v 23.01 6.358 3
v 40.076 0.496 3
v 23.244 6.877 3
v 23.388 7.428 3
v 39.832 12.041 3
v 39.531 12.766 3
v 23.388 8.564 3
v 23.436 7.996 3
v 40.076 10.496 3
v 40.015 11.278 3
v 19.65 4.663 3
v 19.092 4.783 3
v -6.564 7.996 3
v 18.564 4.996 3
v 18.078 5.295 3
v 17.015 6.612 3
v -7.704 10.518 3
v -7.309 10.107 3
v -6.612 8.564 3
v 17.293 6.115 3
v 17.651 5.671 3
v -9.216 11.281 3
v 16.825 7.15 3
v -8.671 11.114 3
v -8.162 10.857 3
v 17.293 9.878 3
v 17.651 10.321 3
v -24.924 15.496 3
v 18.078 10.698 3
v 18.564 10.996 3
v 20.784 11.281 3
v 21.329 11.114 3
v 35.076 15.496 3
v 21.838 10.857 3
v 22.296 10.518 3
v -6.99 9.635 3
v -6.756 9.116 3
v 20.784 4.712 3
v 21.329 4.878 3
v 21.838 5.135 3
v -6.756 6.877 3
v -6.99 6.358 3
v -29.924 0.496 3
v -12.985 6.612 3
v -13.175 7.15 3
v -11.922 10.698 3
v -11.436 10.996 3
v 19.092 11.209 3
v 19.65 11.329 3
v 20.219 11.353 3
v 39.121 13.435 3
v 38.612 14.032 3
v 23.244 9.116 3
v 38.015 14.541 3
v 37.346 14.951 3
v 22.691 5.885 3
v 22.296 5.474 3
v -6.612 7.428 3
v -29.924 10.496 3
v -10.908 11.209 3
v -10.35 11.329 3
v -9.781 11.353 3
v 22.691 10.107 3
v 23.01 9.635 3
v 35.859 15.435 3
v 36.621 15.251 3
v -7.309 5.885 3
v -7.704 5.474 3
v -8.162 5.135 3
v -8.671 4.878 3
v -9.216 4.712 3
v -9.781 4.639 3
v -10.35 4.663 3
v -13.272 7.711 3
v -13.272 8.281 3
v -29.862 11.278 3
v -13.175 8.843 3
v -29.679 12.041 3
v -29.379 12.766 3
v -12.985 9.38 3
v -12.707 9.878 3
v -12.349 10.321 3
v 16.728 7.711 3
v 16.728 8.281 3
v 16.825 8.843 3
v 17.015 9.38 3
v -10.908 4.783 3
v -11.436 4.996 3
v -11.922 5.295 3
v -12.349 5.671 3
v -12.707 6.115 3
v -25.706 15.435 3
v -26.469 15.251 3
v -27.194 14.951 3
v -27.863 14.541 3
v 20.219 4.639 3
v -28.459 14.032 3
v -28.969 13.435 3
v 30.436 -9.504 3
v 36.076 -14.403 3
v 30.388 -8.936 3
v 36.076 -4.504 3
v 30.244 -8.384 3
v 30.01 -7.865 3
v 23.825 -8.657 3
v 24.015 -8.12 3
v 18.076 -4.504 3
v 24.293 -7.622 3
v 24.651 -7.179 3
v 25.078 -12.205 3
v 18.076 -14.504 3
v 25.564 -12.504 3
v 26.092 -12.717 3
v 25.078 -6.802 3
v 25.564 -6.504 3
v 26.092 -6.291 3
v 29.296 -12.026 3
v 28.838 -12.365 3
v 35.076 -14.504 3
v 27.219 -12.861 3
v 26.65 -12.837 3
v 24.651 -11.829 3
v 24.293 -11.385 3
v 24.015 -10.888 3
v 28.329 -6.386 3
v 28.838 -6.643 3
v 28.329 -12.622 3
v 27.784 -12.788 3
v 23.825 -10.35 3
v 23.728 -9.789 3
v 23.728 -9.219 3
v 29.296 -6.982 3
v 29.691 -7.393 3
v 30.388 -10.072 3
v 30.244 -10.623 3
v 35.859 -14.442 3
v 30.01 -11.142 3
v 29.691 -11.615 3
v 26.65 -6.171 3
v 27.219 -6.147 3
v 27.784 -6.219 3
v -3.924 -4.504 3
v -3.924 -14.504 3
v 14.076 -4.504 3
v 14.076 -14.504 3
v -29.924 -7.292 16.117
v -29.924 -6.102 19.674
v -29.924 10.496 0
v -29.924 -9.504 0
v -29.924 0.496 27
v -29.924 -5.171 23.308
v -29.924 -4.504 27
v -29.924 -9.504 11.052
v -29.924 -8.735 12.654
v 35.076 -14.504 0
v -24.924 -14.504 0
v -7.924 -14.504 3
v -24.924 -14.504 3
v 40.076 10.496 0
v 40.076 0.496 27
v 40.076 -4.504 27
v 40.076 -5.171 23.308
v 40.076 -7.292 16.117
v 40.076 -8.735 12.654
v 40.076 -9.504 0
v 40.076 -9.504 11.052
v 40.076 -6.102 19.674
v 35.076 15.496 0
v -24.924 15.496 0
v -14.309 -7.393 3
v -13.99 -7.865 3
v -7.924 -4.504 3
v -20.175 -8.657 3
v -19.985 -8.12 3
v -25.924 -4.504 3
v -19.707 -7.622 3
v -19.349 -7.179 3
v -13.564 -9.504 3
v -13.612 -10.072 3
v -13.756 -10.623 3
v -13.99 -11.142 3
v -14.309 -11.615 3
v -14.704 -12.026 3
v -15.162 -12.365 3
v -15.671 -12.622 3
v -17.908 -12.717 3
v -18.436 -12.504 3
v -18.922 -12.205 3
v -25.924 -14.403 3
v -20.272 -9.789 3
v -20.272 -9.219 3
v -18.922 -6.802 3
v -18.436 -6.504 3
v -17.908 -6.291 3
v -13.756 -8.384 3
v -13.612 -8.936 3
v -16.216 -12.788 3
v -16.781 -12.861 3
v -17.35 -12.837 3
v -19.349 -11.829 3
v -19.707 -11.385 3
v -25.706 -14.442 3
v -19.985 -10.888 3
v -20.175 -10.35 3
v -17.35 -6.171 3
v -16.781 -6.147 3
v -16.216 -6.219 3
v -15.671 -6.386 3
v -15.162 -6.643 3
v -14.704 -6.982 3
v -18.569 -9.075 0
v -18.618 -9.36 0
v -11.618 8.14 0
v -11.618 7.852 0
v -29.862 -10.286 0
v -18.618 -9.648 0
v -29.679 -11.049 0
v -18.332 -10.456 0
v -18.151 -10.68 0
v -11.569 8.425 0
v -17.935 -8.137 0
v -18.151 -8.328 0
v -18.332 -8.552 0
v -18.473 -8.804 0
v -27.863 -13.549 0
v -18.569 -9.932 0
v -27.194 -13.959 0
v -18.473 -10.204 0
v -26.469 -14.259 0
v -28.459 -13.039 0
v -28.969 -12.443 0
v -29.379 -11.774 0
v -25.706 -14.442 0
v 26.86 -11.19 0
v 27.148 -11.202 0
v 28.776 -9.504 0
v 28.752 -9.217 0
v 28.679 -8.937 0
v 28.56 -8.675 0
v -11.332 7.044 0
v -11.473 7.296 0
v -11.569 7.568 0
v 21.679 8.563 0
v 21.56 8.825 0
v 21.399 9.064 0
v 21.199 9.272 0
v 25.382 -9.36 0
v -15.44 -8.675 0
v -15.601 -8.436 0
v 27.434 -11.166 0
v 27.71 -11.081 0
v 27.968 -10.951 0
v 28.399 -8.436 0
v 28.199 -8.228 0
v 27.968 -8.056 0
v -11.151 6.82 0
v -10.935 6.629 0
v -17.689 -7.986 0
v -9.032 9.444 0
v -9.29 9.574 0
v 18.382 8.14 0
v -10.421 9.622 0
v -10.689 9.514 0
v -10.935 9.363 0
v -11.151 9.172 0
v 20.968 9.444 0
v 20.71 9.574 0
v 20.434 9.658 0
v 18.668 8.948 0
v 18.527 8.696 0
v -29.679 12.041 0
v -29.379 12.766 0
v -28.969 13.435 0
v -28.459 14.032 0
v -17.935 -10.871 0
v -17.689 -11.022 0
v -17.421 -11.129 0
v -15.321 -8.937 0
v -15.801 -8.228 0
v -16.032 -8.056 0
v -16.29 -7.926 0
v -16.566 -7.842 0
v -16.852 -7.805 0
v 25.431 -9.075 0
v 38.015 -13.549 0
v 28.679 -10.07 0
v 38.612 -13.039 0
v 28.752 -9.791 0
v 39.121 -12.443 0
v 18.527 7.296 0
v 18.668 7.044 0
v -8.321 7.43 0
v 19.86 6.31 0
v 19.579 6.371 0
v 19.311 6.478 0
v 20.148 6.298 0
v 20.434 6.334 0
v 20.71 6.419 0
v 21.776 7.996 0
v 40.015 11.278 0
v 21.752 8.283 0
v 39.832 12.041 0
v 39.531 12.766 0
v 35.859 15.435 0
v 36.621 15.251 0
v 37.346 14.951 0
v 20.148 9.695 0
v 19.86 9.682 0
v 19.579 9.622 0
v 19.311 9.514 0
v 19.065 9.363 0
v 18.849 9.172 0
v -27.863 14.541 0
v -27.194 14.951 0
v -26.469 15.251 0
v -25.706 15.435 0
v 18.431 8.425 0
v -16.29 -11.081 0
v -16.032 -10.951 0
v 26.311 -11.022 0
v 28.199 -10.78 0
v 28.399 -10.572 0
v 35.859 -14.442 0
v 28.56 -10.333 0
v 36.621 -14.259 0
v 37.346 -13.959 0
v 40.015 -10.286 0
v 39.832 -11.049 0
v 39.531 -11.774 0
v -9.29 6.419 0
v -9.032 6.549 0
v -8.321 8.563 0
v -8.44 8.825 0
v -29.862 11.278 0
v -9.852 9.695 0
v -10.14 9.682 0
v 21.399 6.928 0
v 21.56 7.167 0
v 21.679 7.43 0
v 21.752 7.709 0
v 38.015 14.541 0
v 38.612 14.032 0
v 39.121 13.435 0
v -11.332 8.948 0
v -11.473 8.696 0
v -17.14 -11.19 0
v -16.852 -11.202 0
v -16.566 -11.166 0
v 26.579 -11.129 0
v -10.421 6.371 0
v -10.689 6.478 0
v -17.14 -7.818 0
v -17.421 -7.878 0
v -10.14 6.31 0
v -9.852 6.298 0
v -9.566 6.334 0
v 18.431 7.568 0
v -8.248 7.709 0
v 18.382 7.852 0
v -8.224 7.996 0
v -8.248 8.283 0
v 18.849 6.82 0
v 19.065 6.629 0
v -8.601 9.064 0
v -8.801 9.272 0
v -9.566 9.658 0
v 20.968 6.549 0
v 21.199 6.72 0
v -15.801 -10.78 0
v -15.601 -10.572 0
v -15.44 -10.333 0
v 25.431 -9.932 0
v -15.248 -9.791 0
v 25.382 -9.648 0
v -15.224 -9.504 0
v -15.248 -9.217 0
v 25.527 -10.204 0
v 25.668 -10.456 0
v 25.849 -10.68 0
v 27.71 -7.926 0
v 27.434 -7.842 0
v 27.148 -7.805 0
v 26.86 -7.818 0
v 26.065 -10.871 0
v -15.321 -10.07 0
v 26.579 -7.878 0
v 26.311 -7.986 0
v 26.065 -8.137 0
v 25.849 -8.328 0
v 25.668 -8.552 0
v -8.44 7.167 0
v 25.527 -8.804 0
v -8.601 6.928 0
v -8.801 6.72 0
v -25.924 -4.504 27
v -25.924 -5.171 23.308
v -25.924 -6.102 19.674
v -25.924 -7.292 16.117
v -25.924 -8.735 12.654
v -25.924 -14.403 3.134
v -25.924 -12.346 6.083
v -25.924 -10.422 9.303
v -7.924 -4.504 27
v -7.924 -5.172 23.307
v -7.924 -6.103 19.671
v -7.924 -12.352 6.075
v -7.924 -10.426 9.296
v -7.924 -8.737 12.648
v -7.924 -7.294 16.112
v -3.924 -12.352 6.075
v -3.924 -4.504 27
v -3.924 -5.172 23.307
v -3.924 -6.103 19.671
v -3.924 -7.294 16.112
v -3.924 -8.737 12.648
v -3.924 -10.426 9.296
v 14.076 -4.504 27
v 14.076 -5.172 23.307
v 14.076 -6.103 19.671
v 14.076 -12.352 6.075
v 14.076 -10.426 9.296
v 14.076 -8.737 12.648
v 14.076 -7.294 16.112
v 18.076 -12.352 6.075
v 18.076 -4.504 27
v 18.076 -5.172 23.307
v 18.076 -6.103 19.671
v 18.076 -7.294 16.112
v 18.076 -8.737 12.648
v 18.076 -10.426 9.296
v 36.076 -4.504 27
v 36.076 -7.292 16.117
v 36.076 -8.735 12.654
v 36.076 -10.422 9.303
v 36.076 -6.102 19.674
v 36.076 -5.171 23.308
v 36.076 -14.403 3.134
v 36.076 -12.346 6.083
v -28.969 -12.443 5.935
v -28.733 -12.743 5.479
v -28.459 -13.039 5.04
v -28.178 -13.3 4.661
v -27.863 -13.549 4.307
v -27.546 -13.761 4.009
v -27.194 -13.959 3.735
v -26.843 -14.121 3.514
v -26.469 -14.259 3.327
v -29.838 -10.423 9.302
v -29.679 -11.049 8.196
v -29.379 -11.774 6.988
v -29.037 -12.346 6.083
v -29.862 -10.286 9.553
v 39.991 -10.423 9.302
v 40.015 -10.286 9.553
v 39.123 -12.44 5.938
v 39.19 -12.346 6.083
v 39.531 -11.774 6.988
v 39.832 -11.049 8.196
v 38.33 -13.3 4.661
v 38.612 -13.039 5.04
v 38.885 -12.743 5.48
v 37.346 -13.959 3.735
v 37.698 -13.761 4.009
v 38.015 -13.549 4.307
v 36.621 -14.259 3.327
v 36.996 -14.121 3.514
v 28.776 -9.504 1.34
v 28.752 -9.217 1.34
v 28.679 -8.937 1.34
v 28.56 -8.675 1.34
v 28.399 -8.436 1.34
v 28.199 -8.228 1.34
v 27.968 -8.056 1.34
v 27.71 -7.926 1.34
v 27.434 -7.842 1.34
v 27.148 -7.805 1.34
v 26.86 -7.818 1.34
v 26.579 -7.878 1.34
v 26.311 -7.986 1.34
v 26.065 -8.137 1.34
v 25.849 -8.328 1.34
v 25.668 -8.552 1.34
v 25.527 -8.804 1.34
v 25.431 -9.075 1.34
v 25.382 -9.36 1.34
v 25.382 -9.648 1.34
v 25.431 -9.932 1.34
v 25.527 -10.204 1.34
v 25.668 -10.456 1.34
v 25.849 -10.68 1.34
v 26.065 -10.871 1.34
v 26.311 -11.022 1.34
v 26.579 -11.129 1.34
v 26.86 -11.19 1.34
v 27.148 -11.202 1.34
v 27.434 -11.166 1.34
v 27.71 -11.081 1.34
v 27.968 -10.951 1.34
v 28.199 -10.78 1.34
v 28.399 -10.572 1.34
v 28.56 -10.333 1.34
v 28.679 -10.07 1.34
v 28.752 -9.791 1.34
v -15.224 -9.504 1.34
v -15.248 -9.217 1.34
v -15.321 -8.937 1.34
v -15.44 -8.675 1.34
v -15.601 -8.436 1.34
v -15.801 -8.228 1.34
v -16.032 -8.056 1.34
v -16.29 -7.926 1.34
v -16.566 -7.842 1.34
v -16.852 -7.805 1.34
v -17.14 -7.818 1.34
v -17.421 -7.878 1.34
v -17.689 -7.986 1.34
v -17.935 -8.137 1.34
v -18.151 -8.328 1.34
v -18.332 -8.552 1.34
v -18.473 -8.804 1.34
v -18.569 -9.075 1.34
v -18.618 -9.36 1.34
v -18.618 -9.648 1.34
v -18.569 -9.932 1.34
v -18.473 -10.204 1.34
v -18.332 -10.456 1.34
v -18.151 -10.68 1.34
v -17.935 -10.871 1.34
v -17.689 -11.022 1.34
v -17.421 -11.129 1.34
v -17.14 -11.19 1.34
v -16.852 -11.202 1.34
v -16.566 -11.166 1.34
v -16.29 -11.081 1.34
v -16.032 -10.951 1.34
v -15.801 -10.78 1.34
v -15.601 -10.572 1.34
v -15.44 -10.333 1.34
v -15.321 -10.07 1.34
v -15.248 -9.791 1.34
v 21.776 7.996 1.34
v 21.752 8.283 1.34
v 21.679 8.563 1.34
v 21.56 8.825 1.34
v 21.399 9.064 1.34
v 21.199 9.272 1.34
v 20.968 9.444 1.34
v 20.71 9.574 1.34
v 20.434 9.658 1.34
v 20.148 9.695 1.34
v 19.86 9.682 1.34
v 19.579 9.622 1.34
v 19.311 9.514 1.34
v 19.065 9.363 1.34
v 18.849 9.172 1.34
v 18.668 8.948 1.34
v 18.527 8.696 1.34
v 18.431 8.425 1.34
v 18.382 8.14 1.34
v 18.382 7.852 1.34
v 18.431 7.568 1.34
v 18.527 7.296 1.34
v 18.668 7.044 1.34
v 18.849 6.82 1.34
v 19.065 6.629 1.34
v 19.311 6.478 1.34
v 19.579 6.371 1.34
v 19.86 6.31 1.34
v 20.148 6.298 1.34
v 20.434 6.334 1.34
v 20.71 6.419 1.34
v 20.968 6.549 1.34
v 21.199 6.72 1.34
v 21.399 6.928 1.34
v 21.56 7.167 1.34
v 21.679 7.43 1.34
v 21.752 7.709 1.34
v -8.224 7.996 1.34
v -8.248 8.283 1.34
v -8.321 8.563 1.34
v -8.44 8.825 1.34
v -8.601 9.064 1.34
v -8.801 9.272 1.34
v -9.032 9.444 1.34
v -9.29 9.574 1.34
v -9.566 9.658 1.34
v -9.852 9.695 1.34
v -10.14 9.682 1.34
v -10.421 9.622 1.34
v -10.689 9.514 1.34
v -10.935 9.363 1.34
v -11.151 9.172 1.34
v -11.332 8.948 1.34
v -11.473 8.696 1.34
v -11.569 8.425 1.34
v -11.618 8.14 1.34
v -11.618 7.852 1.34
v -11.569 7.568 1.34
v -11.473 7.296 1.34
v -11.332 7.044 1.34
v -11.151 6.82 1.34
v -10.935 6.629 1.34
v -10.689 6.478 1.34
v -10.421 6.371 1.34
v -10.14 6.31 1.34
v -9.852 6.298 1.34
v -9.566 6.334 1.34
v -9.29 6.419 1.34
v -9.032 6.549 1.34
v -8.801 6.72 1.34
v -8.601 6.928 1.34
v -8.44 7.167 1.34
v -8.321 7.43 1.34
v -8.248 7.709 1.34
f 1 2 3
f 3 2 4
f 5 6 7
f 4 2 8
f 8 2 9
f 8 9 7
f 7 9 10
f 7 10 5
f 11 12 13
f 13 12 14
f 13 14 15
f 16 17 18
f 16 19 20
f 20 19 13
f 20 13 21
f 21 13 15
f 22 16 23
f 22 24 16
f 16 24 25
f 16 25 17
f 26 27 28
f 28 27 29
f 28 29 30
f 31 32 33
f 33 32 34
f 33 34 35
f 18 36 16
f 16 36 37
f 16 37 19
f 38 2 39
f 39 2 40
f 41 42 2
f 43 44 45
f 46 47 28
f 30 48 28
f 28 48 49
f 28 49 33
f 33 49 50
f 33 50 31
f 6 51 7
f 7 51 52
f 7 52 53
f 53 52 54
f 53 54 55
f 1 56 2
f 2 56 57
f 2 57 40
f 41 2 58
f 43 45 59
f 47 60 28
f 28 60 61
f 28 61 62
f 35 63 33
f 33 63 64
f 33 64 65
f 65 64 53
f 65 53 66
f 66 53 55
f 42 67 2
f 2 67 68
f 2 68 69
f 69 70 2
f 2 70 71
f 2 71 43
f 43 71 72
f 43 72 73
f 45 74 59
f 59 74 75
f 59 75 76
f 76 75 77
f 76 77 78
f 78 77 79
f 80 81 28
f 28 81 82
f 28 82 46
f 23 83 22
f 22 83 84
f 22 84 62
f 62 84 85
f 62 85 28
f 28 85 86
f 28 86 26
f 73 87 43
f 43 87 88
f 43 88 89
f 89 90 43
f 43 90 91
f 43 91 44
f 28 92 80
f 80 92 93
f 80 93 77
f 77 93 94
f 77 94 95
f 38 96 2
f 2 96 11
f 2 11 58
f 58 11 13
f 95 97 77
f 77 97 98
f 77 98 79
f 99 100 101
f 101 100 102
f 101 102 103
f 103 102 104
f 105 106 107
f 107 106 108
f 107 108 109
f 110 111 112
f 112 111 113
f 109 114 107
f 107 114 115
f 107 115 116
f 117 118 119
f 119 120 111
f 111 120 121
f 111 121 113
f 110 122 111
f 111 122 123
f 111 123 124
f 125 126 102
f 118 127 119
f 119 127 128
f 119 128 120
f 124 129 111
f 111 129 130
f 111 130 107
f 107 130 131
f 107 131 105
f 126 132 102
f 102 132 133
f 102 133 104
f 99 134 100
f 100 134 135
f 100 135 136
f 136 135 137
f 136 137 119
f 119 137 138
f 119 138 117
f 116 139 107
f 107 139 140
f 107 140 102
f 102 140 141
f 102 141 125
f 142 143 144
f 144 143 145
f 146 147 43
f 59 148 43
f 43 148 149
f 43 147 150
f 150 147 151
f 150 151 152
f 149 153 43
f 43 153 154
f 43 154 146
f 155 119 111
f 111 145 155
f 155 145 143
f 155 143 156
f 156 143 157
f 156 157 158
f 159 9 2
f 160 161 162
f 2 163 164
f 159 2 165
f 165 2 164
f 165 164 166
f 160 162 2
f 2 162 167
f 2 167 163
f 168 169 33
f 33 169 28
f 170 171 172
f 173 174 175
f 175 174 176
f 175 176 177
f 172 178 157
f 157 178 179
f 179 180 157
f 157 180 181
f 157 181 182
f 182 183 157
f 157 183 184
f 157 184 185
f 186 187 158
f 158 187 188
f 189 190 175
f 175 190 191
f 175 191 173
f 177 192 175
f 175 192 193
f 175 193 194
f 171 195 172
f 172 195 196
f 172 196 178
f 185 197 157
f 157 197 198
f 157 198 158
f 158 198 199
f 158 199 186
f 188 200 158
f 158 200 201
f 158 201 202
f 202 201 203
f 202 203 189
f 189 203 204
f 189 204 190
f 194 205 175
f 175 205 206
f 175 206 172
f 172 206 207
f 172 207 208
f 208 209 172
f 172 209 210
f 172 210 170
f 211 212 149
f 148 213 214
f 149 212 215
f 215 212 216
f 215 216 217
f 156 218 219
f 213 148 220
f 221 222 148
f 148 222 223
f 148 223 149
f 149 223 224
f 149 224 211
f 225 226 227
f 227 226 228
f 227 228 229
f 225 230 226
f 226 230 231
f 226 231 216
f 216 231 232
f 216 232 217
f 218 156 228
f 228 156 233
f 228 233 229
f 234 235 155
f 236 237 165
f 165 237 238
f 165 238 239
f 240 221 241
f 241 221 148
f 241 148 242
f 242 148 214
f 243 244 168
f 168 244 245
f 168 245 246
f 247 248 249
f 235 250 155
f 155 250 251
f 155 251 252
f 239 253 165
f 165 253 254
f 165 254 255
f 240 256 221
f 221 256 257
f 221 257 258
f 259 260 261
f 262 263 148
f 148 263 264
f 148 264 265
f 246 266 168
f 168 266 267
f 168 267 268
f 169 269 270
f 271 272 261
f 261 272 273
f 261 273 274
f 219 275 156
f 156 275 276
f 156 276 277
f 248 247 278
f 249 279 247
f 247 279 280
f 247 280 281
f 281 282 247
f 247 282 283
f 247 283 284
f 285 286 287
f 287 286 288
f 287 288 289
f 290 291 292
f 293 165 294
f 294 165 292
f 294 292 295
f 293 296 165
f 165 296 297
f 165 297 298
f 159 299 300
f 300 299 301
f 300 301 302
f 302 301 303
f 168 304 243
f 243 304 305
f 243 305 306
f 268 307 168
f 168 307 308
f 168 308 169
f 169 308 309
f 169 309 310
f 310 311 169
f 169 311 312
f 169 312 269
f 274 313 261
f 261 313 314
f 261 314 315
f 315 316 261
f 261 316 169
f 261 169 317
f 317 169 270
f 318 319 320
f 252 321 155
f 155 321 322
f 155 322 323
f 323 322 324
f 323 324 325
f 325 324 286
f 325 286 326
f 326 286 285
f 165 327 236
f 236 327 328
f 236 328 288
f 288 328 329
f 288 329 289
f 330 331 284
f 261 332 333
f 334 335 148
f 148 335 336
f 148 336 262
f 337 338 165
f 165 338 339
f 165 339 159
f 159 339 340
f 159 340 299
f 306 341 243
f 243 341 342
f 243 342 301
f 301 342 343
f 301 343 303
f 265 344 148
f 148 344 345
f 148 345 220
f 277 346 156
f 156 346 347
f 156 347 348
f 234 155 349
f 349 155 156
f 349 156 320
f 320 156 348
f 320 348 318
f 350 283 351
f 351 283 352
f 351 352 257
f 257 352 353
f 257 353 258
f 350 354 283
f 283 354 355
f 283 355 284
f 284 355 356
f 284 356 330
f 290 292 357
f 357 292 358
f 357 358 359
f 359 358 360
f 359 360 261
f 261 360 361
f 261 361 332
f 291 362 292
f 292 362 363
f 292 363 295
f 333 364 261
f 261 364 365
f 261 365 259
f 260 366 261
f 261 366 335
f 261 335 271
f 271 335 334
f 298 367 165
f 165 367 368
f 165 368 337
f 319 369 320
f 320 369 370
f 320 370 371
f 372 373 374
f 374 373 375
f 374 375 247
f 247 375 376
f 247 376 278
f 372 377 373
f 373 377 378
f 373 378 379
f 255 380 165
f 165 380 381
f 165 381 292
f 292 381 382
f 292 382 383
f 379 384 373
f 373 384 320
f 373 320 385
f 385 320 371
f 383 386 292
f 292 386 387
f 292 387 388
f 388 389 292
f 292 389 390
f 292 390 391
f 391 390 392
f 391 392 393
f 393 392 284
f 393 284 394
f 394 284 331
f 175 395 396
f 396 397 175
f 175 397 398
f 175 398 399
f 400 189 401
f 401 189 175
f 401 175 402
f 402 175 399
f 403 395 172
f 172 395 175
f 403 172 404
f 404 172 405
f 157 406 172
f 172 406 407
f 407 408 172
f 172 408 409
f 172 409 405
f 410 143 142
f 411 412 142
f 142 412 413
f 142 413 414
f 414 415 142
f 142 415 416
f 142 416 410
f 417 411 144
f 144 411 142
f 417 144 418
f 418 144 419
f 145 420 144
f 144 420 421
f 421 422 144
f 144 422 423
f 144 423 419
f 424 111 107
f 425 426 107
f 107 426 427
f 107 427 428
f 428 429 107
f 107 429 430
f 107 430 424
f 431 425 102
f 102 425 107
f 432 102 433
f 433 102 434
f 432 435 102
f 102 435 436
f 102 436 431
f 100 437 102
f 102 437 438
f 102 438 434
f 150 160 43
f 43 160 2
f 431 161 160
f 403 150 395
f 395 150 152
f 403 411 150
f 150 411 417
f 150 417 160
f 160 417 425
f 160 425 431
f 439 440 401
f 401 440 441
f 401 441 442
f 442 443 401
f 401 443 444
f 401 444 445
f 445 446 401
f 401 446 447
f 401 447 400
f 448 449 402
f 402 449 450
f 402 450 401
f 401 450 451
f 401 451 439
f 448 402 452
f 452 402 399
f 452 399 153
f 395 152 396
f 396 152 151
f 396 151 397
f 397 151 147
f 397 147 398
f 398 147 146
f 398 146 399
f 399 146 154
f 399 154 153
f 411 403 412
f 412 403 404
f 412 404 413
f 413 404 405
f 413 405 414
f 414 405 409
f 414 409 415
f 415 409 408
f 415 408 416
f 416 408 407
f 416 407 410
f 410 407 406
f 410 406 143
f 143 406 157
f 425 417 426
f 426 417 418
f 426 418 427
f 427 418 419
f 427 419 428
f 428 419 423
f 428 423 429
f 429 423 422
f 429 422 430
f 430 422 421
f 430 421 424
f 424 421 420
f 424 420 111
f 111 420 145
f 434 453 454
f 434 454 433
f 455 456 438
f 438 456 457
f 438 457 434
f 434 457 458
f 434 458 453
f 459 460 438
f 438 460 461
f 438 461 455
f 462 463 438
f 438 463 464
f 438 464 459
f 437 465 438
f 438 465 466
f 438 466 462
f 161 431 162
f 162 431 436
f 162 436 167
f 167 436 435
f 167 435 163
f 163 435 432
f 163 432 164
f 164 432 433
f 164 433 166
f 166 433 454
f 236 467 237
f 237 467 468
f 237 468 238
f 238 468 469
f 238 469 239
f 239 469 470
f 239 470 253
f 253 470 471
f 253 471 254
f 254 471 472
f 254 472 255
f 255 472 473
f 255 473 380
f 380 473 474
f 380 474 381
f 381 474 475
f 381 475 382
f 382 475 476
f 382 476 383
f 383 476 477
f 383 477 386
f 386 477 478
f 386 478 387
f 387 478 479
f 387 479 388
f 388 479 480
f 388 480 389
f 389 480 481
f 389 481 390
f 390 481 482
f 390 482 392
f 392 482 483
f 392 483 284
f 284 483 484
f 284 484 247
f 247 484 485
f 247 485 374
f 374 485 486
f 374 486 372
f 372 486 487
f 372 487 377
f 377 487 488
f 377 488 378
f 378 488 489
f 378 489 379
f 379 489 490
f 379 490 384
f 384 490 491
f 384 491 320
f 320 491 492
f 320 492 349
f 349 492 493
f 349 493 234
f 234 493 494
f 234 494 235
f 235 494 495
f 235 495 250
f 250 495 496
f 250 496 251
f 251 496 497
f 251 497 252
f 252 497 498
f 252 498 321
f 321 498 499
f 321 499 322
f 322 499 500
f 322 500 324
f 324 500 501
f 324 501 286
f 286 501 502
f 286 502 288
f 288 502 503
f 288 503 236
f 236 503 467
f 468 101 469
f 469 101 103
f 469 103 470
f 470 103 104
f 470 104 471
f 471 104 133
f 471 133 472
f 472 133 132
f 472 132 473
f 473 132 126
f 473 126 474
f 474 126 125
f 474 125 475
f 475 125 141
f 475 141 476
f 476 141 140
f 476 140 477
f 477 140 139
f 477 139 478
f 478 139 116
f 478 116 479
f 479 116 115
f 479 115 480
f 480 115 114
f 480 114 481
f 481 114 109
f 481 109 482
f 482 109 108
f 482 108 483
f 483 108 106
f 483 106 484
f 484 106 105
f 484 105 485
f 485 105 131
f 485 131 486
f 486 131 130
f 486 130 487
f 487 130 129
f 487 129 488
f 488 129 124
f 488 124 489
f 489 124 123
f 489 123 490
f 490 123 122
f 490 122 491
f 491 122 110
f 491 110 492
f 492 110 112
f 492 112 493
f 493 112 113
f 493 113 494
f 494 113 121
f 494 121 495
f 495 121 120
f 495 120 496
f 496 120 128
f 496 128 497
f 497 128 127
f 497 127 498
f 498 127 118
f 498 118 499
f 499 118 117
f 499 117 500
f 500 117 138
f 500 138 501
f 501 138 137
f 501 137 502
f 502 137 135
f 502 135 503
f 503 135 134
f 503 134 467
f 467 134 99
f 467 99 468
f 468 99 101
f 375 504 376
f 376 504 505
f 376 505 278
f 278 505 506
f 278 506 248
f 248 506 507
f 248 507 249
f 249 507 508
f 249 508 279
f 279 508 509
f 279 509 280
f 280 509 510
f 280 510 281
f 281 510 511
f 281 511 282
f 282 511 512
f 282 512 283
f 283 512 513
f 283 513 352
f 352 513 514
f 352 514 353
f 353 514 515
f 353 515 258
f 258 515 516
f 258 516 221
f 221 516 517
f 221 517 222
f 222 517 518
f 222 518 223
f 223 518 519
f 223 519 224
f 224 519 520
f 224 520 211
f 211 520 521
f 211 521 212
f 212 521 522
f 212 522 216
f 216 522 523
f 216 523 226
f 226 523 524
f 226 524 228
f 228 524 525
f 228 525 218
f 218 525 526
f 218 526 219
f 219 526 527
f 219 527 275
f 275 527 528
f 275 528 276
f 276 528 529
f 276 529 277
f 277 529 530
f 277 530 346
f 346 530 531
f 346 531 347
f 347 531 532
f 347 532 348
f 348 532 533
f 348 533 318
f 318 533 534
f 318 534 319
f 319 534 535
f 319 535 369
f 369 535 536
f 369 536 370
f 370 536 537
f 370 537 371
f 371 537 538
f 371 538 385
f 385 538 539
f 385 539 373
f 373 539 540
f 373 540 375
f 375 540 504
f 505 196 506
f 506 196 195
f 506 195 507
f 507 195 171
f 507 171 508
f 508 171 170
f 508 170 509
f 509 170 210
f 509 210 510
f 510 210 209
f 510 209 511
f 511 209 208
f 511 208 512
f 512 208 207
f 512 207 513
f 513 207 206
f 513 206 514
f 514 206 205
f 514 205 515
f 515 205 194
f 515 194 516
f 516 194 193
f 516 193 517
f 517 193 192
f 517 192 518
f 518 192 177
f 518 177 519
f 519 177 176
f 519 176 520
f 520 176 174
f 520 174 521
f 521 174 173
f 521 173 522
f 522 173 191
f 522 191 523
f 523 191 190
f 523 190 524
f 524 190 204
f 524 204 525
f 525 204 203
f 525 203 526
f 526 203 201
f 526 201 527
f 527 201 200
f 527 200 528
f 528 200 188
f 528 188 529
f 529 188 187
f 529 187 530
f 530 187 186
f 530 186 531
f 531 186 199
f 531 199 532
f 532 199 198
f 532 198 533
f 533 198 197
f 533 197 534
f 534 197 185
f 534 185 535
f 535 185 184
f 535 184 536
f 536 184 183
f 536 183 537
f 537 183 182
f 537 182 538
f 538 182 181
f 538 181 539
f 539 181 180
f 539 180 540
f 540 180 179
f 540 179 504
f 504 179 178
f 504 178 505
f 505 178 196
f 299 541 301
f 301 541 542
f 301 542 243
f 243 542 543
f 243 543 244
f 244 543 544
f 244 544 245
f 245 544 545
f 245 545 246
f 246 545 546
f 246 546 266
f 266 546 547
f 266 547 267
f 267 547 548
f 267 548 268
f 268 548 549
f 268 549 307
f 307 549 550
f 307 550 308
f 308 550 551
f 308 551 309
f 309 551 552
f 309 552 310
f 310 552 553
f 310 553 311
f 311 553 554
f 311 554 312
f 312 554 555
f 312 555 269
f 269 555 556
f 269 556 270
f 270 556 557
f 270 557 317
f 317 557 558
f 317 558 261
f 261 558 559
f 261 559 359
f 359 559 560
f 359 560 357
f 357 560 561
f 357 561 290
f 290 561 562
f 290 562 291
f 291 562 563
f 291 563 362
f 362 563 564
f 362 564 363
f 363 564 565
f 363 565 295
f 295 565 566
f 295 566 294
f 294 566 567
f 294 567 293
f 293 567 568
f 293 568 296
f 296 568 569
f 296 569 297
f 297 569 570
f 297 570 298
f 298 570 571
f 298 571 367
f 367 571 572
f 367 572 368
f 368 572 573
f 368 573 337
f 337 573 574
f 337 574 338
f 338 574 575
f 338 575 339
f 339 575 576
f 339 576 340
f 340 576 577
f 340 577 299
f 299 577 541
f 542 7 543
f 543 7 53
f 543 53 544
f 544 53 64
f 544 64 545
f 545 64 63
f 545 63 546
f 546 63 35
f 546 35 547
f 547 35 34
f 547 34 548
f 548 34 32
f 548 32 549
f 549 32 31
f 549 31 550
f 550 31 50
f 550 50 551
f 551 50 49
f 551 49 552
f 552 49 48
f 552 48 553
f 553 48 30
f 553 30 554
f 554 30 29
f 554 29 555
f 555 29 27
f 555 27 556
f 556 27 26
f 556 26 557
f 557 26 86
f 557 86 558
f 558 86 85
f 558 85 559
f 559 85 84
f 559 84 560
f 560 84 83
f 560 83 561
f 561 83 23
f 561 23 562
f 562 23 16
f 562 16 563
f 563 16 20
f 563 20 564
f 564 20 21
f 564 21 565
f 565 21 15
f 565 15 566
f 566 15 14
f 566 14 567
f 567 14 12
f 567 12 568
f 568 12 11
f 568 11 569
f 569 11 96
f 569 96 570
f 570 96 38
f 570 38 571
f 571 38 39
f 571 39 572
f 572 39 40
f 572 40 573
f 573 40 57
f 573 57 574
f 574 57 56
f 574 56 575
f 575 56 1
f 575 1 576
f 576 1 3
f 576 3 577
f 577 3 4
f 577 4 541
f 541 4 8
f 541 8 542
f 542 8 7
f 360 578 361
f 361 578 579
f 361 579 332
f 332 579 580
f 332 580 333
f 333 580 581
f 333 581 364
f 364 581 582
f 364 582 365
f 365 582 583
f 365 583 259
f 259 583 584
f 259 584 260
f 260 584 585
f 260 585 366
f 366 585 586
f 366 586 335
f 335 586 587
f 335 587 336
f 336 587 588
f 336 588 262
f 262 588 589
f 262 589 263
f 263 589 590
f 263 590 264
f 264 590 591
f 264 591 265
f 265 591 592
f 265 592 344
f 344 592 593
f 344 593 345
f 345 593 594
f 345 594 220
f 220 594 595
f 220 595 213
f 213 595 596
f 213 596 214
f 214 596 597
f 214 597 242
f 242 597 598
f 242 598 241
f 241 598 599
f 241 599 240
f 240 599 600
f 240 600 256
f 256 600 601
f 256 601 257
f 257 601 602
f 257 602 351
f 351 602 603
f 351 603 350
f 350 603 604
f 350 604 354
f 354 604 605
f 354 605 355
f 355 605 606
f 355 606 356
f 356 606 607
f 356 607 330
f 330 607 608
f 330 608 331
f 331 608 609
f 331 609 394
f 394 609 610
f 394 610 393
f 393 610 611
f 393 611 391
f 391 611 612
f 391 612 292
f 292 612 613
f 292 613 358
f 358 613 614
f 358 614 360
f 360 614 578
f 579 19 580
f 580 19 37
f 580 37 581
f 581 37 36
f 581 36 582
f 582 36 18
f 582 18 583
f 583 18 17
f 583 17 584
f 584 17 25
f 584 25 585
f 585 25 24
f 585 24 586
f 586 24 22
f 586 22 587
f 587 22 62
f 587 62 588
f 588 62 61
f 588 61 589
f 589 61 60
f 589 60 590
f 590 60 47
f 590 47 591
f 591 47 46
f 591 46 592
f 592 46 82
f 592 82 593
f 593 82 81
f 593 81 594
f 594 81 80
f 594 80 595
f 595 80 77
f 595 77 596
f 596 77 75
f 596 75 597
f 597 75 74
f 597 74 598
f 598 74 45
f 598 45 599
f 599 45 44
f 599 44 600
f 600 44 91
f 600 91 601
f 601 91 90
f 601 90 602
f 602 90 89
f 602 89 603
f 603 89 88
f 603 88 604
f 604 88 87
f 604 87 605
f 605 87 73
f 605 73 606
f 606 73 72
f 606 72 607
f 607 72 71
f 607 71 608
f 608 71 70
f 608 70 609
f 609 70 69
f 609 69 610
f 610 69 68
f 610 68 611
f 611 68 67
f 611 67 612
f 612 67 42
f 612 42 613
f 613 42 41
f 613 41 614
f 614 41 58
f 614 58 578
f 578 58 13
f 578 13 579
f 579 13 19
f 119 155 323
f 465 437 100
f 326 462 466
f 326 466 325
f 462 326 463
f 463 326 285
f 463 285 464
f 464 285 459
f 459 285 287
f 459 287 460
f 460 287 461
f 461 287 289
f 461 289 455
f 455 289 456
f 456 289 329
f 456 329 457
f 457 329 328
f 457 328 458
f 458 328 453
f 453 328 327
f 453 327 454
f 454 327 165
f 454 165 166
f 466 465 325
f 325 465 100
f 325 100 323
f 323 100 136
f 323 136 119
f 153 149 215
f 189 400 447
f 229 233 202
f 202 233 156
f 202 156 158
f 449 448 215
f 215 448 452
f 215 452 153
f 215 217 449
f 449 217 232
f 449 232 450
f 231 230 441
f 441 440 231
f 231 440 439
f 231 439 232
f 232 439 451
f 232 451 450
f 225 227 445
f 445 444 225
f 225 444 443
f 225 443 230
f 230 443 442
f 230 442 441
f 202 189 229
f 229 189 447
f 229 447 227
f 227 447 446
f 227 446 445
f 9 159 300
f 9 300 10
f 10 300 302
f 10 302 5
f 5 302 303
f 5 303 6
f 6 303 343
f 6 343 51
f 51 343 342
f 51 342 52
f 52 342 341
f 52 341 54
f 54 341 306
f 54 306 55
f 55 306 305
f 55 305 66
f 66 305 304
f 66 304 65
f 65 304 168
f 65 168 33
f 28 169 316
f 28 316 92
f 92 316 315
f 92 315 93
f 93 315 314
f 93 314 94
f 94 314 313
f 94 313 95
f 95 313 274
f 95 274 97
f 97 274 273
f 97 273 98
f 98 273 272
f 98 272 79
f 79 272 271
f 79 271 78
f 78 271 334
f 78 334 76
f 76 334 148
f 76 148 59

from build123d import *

# Parameters (mm, degrees)
CROQUIS1_W                                   = 70
CROQUIS1_H                                   = 30
SALIENTE_EXTRUIR1_DEPTH                      = 3
SALIENTE_EXTRUIR2_DEPTH                      = 24
CORTAR_EXTRUIR1_DEPTH                        = 70.000004
CROQUIS5_R                                   = 1.5
CORTAR_EXTRUIR2_DEPTH                        = 3
REFRENTADO_PARA_TORNILLO_TAP_N_CON_C_2_COUNT = 2
REFRENTADO_PARA_TORNILLO_TAP_N_CON_C_2_PITCH = 30
REFRENTADO_PARA_TORNILLO_TAP_N_CON_C_3_COUNT = 2
REFRENTADO_PARA_TORNILLO_TAP_N_CON_C_3_PITCH = 18.848076825
REFRENTADO_PARA_TORNILLO_TAP_N_CON_C_4_COUNT = 2
REFRENTADO_PARA_TORNILLO_TAP_N_CON_C_4_PITCH = 40.929817982
REDONDEO1_R                                  = 5


with BuildPart() as part:
    # Croquis1 → Saliente-Extruir1 (new body)
    with BuildSketch(Plane.XY):
        with Locations((5.076335878, 0.496183206)):
            Rectangle(CROQUIS1_W, CROQUIS1_H)
    extrude(amount=SALIENTE_EXTRUIR1_DEPTH)

    # Croquis3 → Saliente-Extruir2 (add)
    with BuildSketch(Plane.XY.offset(3)):
        Polygon((-29.923664122, 0.496183206), (40.076335878, 0.496183206), (40.076335878, -4.503816794), (40.076335878, -14.503816794), (36.076335878, -14.503816794), (36.076335878, -4.503816794), (18.076335878, -4.503816794), (18.076335878, -14.503816794), (14.076335878, -14.503816794), (14.076335878, -4.503816794), (-3.923664122, -4.503816794), (-3.923664122, -14.503816794), (-7.923664122, -14.503816794), (-7.923664122, -4.503816794), (-25.923664122, -4.503816794), (-25.923664122, -14.503816794), (-29.923664122, -14.503816794), (-29.923664122, -4.503816794), align=None)
    extrude(amount=SALIENTE_EXTRUIR2_DEPTH)

    # Croquis4 → Cortar-Extruir1 (cut)
    with BuildSketch(Plane.ZY.offset(29.923664122)):
        with BuildLine():
            Line((27, -14.503816794), (27, -4.503816794))
            ThreePointArc((27, -4.503816794), (14.366976751, -7.984560996), (3, -14.503816794))
            Line((3, -14.503816794), (27, -14.503816794))
        make_face()
    extrude(amount=-CORTAR_EXTRUIR1_DEPTH, mode=Mode.SUBTRACT)

    # Croquis5 → Cortar-Extruir2 (cut)
    with BuildSketch(Plane.XY.offset(3)):
        with Locations((-9.923664122, 7.996183206)):
            Circle(CROQUIS5_R)
        with Locations(Location((20.076335878, 7.996183206, 0), (0, 0, 180))):
            Circle(CROQUIS5_R)
        with Locations((-16.923664122, -9.503816794)):
            Circle(CROQUIS5_R)
        with Locations(Location((27.076335878, -9.503816794, 0), (0, 0, 180))):
            Circle(CROQUIS5_R)
    extrude(amount=-CORTAR_EXTRUIR2_DEPTH, mode=Mode.SUBTRACT)

    # Croquis7 → Refrentado para tornillo tapón con cabeza plana de clavija de M31 (revolve, cut)
    with BuildSketch(Plane(origin=(-9.923664122, 7.996183206, 3), x_dir=(0, -1, 0), z_dir=(1, 0, 0))):
        Polygon((0, 0), (0, 3), (1.7, 3), (1.7, 1.66), (3.36, 0), align=None)
    refrentado_para_tornillo_tap_n_con_cabez = revolve(axis=Axis((-9.923664122, 7.996183206, 9.35), (0, 0, -1)), mode=Mode.SUBTRACT)

    # Refrentado para tornillo tap_n con c 2: Refrentado para tornillo tapón con cabeza plana de clavija de M31 ×2
    with Locations(*[(i * REFRENTADO_PARA_TORNILLO_TAP_N_CON_C_2_PITCH, 0, 0) for i in range(1, REFRENTADO_PARA_TORNILLO_TAP_N_CON_C_2_COUNT)]):
        add(refrentado_para_tornillo_tap_n_con_cabez, mode=Mode.SUBTRACT)

    # Refrentado para tornillo tap_n con c 3: Refrentado para tornillo tapón con cabeza plana de clavija de M31 ×2
    with Locations(*[Vector(-0.3713906763541037, -0.9284766908852593, 0) * (i * REFRENTADO_PARA_TORNILLO_TAP_N_CON_C_3_PITCH) for i in range(1, REFRENTADO_PARA_TORNILLO_TAP_N_CON_C_3_COUNT)]):
        add(refrentado_para_tornillo_tap_n_con_cabez, mode=Mode.SUBTRACT)

    # Refrentado para tornillo tap_n con c 4: Refrentado para tornillo tapón con cabeza plana de clavija de M31 ×2
    with Locations(*[Vector(0.9039864290798859, -0.42756114888913443, 0) * (i * REFRENTADO_PARA_TORNILLO_TAP_N_CON_C_4_PITCH) for i in range(1, REFRENTADO_PARA_TORNILLO_TAP_N_CON_C_4_COUNT)]):
        add(refrentado_para_tornillo_tap_n_con_cabez, mode=Mode.SUBTRACT)

    # Redondeo1
    # the kernel refuses this fillet: 5 mm, written as the material it takes off along each edge
    with BuildSketch(Plane(origin=(40.076335878, -14.503816794, 15.5), x_dir=(0, 1, 0), z_dir=(0, 0, -1)), Plane(origin=(-29.923664122, -14.503816794, -12.5), x_dir=(0, 1, 0), z_dir=(0, 0, 1)), Plane(origin=(-29.923664122, 15.496183206, -12.5), x_dir=(1, 0, 0), z_dir=(0, 0, 1))) as redondeo1_piece_1:
        with BuildLine():
            CenterArc((REDONDEO1_R, -REDONDEO1_R), REDONDEO1_R, 90, 90)
            Line((0, -REDONDEO1_R), (0, 0))
            Line((0, 0), (REDONDEO1_R, 0))
        make_face()
    extrude(amount=28, mode=Mode.SUBTRACT)
    with BuildSketch(Plane(origin=(40.076335878, 15.496183206, -12.5), x_dir=(-1, 0, 0), z_dir=(0, 0, 1))) as redondeo1_piece_2:
        with BuildLine():
            CenterArc((REDONDEO1_R, REDONDEO1_R), REDONDEO1_R, 180, 90)
            Line((0, REDONDEO1_R), (0, 0))
            Line((0, 0), (REDONDEO1_R, 0))
        make_face()
    extrude(amount=28, mode=Mode.SUBTRACT)


solid = part.part
